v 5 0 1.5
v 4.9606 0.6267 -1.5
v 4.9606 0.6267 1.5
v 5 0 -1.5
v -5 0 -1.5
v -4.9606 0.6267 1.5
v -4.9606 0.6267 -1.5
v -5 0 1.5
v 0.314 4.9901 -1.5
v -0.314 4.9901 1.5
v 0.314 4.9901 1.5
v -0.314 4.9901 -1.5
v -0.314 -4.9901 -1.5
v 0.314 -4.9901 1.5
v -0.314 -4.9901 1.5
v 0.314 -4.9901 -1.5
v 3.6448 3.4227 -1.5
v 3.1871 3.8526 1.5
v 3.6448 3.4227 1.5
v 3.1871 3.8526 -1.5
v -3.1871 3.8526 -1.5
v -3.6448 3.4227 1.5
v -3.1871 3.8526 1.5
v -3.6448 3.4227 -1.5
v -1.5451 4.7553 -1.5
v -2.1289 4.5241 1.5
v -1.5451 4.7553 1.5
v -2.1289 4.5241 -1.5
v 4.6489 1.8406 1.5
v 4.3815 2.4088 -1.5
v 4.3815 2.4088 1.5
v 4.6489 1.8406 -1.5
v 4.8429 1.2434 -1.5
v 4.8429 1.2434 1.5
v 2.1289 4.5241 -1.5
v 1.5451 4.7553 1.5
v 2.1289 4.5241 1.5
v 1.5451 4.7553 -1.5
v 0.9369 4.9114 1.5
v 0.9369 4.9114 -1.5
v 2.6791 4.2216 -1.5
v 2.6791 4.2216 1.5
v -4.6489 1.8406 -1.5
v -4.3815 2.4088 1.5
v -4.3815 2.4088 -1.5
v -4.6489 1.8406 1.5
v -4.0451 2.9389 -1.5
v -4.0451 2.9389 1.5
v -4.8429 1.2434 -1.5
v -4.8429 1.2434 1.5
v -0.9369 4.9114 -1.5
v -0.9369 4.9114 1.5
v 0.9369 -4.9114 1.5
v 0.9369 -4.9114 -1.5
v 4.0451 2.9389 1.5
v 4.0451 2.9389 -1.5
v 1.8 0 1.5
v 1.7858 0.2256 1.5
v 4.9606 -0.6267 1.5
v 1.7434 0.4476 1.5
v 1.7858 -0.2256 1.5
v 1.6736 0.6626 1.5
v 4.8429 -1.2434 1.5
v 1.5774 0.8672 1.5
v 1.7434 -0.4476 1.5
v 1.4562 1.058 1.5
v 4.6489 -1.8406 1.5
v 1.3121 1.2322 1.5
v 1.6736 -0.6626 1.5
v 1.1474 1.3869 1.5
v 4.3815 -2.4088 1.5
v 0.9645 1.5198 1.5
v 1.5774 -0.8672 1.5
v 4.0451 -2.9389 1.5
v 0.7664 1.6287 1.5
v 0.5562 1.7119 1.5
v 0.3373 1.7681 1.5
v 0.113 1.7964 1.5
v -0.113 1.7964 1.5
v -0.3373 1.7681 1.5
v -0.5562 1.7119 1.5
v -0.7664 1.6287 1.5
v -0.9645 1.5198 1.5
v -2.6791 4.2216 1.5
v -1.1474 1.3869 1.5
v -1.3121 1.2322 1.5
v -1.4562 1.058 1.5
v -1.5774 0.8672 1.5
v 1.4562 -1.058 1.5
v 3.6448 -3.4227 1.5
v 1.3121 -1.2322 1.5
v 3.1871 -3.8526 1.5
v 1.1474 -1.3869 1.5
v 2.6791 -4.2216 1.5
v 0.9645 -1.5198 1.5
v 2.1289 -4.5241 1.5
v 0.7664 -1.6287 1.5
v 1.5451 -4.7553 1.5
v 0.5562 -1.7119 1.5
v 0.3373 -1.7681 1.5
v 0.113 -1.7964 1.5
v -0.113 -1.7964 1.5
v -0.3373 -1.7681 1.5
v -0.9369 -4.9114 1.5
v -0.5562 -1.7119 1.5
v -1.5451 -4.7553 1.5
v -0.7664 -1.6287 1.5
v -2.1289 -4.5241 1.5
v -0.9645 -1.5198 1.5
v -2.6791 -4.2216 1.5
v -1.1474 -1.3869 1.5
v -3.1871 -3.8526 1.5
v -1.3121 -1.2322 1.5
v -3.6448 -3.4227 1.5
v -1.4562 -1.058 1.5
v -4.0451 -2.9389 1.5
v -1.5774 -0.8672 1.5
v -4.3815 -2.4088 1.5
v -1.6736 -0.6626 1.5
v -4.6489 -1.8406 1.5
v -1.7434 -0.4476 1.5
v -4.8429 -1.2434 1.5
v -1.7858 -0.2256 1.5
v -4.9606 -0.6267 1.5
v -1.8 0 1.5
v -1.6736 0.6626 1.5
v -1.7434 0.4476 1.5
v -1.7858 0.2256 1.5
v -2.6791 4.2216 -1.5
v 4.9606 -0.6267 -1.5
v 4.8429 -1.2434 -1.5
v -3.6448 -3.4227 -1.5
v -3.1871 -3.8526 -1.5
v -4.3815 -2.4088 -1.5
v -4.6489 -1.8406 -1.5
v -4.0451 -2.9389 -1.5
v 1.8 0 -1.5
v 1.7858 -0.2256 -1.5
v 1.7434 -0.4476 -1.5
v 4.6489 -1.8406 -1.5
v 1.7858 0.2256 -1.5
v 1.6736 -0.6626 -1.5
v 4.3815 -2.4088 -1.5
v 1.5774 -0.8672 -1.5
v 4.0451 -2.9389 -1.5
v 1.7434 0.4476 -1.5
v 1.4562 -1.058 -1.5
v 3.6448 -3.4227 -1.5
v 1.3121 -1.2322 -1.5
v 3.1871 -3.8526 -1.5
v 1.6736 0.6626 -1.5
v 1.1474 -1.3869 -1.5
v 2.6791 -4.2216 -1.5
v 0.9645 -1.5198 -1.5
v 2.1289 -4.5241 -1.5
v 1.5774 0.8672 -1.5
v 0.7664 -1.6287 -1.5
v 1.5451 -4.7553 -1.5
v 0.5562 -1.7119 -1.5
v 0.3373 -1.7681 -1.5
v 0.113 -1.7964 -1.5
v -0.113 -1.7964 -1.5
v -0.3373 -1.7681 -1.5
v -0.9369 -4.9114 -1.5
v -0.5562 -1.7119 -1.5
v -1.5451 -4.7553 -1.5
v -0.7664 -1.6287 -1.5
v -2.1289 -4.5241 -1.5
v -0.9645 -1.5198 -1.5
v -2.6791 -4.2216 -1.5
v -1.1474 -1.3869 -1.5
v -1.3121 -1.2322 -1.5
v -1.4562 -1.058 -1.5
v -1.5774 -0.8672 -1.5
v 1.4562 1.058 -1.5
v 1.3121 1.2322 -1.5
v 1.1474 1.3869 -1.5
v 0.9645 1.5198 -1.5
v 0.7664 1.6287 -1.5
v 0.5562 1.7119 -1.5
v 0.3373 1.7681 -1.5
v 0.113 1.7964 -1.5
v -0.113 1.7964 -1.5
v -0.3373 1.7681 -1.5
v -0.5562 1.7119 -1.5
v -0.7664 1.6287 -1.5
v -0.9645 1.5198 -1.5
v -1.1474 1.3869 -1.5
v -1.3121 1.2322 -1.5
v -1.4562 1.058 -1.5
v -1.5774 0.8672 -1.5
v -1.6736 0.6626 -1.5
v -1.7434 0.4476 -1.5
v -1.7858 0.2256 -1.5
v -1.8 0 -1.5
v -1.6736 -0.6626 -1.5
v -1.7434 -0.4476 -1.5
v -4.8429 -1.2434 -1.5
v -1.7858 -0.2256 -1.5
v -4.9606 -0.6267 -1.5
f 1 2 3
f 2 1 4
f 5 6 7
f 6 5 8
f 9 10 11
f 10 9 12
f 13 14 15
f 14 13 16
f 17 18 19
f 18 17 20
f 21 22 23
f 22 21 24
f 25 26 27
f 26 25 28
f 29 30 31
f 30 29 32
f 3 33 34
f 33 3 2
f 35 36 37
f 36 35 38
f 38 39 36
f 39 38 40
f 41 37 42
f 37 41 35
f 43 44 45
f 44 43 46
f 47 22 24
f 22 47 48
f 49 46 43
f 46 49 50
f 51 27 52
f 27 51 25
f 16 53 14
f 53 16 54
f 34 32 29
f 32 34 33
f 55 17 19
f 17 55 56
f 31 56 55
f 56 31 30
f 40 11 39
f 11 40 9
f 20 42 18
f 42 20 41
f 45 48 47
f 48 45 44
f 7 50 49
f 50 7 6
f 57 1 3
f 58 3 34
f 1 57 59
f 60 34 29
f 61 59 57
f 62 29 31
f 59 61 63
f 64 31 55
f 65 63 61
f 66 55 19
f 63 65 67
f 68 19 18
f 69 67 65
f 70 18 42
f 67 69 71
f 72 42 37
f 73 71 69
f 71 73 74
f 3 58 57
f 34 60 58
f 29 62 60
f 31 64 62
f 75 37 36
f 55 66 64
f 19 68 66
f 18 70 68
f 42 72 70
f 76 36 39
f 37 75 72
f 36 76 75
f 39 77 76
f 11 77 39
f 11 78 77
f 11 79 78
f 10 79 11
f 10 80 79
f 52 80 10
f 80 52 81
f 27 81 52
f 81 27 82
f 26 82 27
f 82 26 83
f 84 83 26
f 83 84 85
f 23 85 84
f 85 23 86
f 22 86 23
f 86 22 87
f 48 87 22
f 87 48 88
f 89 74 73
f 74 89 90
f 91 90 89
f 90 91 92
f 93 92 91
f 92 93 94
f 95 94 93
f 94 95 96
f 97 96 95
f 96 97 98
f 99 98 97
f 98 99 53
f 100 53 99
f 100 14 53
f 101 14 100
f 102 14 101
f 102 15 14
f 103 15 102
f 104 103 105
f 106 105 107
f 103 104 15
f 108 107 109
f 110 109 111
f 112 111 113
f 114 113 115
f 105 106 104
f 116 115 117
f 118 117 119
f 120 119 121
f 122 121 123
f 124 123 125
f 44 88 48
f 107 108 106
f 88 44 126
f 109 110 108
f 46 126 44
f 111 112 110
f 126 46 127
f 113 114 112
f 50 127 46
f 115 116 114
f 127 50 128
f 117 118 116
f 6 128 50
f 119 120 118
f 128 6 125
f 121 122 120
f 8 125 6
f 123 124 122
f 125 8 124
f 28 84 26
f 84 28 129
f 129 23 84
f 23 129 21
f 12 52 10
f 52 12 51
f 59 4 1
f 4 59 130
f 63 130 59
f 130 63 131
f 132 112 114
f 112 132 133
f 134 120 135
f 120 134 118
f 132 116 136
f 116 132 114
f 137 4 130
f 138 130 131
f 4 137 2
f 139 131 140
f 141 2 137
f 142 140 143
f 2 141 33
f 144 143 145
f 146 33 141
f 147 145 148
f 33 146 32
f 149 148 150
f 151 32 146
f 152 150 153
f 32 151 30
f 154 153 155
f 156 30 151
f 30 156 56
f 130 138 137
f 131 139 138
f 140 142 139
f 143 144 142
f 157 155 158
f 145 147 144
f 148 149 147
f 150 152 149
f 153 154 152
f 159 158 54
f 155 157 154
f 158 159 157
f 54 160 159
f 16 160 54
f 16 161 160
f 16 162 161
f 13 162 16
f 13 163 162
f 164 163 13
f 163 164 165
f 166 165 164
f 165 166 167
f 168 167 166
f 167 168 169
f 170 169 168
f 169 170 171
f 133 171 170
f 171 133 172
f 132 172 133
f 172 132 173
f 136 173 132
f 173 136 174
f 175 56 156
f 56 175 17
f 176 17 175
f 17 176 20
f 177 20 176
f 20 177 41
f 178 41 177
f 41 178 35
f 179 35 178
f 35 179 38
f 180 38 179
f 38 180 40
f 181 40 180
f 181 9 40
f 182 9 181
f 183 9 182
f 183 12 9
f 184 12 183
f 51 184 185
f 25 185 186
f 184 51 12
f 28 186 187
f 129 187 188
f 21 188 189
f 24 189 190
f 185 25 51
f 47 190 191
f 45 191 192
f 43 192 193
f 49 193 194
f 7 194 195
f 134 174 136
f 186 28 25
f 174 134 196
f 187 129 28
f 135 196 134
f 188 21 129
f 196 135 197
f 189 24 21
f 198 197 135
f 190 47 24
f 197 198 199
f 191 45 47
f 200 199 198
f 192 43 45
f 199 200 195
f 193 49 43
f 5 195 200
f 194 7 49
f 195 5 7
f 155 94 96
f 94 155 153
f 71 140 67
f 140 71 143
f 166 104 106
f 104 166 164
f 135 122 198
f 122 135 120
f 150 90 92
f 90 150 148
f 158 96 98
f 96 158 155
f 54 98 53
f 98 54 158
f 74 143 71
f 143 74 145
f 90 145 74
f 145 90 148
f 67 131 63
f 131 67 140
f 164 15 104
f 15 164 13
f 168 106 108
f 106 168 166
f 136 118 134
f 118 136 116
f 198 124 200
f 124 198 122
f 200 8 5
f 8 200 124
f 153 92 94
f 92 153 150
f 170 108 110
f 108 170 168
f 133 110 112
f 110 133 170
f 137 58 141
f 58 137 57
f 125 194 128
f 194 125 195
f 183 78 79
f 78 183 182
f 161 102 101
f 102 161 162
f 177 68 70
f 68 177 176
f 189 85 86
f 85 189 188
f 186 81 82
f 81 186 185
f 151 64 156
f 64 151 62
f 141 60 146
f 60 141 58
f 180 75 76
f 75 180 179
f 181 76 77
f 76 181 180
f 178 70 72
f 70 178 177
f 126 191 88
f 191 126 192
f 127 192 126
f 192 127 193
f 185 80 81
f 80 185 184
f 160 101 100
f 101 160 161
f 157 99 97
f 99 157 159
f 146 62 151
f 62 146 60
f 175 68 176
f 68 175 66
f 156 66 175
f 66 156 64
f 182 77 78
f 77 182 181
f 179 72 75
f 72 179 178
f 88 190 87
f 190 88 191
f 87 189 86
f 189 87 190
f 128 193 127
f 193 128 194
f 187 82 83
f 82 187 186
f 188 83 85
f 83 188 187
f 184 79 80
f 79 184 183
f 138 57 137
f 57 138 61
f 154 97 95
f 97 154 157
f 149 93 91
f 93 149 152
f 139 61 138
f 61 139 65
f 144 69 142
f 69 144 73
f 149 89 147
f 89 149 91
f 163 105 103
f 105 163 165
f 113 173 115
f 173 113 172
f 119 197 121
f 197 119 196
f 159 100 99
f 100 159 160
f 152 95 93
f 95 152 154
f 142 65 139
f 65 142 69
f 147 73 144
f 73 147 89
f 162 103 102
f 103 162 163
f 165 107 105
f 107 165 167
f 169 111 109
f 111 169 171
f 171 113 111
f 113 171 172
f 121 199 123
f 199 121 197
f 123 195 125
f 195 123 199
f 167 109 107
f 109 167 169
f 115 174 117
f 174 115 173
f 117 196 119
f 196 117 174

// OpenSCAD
$fn = 50;


difference() {
	union() {
		translate(v = [0, 0, -1.5000000000]) {
			rotate(a = [0, 0, 0]) {
				cylinder(h = 3, r = 5.0000000000);
			}
		}
		translate(v = [0, 0, -1.5000000000]) {
			rotate(a = [0, 0, 0]) {
				cylinder(h = 3, r = 2.8500000000);
			}
		}
	}
	union() {
		translate(v = [0, 0, -125.0000000000]) {
			rotate(a = [0, 0, 0]) {
				cylinder(h = 250, r = 1.8000000000);
			}
		}
	}
}
